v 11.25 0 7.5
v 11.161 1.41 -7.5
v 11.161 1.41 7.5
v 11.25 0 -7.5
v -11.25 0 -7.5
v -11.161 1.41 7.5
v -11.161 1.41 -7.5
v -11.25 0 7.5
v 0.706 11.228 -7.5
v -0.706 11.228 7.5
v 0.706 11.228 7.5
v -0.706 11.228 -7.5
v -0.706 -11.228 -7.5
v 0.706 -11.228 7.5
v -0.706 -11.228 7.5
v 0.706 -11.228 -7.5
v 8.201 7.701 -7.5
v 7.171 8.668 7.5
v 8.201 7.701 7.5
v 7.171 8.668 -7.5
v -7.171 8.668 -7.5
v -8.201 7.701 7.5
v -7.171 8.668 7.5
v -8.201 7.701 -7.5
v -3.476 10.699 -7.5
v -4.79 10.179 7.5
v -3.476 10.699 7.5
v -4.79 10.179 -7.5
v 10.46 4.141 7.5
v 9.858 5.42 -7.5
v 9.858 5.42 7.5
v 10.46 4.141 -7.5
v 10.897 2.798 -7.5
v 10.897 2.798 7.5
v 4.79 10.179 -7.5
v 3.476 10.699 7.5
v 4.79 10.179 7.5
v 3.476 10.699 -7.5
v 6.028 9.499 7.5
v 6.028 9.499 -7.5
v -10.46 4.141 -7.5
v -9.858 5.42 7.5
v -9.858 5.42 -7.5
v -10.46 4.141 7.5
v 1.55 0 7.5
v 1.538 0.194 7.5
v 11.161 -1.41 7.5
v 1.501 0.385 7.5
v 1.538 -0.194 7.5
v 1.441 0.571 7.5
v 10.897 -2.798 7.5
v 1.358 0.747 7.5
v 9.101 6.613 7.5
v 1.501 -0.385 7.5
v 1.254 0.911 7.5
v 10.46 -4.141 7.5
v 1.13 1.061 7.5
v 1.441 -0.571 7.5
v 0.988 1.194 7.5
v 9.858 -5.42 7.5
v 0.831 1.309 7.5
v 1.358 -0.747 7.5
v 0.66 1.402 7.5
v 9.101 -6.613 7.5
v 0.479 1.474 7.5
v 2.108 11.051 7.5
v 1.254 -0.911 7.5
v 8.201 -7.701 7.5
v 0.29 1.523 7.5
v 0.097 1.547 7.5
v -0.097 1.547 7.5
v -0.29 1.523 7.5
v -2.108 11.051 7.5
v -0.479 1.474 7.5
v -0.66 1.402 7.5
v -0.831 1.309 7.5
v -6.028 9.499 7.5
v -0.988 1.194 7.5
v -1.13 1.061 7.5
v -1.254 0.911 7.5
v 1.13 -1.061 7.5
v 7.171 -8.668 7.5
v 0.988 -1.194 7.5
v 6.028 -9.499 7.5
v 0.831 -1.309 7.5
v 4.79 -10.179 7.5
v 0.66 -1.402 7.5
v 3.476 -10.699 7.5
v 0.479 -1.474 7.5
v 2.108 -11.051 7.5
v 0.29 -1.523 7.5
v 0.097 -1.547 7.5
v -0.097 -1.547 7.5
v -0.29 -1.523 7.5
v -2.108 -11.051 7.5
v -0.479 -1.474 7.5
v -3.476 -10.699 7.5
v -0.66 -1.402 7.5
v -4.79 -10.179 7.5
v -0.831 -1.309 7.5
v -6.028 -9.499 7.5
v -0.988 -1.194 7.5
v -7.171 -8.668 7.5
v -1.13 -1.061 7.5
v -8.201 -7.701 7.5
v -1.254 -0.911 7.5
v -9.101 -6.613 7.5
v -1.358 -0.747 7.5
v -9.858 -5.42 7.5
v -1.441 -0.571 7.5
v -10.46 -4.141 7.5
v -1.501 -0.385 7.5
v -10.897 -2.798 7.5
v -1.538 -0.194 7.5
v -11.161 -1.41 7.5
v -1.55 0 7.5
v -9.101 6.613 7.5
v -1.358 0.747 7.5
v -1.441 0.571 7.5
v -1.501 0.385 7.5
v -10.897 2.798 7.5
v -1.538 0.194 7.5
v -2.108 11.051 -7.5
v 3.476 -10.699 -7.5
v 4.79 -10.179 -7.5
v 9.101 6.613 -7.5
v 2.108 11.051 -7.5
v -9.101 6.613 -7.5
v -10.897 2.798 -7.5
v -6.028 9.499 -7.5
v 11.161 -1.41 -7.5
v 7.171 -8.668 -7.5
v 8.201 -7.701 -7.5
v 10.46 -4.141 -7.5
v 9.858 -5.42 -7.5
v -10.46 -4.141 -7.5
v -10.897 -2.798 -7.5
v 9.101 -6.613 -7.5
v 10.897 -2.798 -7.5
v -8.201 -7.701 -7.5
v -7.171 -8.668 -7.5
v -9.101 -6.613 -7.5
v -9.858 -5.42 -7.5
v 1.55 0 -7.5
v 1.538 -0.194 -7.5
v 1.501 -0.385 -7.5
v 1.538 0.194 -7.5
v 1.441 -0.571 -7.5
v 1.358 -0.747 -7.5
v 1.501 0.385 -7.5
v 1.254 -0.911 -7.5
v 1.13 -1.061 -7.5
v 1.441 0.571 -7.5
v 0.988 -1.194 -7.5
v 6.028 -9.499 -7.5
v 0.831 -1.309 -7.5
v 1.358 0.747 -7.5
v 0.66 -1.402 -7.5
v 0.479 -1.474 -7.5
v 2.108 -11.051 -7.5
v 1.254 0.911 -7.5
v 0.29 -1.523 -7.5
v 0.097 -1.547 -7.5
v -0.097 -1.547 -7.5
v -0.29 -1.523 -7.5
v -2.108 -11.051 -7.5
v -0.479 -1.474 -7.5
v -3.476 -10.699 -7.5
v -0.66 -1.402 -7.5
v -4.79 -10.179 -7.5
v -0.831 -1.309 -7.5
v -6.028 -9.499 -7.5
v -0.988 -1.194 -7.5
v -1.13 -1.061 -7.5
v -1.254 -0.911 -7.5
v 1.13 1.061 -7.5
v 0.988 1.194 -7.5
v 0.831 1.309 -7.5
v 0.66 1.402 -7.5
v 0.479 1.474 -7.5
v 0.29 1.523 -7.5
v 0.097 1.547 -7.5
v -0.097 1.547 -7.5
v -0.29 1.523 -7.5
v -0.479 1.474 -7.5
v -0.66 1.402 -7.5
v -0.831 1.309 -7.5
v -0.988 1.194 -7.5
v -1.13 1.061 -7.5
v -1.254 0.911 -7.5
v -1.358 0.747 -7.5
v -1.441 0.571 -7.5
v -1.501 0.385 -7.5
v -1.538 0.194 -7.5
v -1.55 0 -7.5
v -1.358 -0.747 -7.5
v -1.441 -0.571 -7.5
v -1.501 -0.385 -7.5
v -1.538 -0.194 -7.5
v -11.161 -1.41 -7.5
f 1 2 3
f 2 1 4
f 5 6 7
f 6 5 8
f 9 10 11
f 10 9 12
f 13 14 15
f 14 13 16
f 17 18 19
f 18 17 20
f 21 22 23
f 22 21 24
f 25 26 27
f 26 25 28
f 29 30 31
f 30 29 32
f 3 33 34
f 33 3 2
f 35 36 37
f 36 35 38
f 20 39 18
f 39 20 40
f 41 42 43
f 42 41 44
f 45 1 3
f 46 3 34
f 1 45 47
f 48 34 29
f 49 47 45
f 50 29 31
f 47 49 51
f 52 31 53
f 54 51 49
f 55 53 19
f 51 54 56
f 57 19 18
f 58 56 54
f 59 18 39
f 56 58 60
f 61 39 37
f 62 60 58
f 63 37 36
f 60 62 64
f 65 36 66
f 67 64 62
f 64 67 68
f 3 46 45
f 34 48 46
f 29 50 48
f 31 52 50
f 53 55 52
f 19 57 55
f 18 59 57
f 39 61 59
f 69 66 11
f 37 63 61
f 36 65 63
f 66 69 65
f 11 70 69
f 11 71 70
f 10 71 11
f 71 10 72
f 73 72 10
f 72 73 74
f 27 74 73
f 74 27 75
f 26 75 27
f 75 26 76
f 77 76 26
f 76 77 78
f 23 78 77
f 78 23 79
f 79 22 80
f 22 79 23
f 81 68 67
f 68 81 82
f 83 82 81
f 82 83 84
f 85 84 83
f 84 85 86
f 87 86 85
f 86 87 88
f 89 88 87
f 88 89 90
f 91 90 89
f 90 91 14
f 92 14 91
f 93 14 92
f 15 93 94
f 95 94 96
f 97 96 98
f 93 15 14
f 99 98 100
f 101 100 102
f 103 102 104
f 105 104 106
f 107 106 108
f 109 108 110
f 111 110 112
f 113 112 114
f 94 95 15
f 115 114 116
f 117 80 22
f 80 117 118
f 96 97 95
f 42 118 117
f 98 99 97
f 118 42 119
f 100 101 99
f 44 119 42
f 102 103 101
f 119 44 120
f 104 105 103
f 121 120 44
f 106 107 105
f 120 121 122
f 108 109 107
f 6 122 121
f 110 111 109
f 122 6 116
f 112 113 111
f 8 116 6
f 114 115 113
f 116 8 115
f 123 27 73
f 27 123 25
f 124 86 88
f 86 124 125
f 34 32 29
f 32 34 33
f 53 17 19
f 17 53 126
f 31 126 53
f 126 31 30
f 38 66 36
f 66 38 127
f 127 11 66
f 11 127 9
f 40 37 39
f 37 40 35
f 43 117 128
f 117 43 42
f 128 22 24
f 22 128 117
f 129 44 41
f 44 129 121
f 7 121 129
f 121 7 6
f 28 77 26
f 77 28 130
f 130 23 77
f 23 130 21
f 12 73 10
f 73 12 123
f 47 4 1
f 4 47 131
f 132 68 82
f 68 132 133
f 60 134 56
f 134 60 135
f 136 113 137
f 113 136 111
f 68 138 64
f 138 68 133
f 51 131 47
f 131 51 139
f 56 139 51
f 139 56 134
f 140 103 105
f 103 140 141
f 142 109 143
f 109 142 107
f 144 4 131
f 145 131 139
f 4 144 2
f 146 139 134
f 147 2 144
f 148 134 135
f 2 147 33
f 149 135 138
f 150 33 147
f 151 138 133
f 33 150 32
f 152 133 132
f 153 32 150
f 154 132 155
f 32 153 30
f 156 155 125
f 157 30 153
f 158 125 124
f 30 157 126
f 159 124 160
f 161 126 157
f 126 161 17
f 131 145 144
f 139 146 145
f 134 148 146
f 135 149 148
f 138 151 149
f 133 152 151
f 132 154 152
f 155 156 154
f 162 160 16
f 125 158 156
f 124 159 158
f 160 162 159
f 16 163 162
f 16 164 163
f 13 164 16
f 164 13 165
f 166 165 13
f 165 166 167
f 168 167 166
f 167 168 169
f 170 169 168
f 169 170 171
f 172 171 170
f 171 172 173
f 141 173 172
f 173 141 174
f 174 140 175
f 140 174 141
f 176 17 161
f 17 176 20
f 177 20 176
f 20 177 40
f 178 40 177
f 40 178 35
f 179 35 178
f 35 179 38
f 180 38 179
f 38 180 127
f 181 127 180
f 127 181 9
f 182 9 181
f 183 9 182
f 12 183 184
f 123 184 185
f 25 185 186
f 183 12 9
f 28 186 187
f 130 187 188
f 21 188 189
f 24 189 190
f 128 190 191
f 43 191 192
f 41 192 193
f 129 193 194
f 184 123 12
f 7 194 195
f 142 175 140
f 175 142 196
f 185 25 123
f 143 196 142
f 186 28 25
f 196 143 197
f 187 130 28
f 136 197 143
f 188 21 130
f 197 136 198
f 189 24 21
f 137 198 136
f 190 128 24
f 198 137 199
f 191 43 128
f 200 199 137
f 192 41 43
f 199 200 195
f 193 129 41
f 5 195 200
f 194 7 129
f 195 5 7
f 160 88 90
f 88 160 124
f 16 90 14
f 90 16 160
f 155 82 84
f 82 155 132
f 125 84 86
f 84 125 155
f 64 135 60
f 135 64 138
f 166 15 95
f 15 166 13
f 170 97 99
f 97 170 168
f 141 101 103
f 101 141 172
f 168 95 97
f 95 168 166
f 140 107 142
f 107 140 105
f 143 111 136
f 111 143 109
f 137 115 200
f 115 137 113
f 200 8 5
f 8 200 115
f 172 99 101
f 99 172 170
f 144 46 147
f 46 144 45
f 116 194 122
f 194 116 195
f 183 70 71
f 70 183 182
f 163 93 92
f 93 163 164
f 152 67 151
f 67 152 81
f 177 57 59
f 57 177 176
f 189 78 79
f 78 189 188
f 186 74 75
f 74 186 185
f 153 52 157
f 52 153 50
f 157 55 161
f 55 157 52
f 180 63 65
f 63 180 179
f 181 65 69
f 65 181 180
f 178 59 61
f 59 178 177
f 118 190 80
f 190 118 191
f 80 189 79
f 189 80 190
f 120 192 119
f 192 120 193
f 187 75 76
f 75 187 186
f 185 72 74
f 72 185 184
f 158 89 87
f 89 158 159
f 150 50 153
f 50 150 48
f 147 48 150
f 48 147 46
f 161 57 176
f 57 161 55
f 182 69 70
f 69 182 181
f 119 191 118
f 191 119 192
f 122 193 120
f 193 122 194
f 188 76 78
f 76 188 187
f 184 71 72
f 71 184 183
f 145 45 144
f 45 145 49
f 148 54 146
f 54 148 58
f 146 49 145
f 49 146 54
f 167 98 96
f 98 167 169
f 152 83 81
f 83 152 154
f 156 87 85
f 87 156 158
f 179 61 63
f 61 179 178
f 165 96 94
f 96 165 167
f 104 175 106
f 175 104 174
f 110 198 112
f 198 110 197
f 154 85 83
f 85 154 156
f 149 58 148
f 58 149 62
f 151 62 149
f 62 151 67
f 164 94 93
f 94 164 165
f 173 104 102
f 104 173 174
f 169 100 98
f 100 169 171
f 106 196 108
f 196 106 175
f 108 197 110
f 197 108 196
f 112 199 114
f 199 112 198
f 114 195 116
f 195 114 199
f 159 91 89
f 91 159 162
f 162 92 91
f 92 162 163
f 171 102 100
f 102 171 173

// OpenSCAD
$fn = 50;


difference() {
	union() {
		translate(v = [0, 0, -7.5000000000]) {
			cylinder(h = 15, r = 11.2500000000);
		}
	}
	union() {
		translate(v = [0, 0, -100.0000000000]) {
			cylinder(h = 200, r = 1.5500000000);
		}
	}
}
